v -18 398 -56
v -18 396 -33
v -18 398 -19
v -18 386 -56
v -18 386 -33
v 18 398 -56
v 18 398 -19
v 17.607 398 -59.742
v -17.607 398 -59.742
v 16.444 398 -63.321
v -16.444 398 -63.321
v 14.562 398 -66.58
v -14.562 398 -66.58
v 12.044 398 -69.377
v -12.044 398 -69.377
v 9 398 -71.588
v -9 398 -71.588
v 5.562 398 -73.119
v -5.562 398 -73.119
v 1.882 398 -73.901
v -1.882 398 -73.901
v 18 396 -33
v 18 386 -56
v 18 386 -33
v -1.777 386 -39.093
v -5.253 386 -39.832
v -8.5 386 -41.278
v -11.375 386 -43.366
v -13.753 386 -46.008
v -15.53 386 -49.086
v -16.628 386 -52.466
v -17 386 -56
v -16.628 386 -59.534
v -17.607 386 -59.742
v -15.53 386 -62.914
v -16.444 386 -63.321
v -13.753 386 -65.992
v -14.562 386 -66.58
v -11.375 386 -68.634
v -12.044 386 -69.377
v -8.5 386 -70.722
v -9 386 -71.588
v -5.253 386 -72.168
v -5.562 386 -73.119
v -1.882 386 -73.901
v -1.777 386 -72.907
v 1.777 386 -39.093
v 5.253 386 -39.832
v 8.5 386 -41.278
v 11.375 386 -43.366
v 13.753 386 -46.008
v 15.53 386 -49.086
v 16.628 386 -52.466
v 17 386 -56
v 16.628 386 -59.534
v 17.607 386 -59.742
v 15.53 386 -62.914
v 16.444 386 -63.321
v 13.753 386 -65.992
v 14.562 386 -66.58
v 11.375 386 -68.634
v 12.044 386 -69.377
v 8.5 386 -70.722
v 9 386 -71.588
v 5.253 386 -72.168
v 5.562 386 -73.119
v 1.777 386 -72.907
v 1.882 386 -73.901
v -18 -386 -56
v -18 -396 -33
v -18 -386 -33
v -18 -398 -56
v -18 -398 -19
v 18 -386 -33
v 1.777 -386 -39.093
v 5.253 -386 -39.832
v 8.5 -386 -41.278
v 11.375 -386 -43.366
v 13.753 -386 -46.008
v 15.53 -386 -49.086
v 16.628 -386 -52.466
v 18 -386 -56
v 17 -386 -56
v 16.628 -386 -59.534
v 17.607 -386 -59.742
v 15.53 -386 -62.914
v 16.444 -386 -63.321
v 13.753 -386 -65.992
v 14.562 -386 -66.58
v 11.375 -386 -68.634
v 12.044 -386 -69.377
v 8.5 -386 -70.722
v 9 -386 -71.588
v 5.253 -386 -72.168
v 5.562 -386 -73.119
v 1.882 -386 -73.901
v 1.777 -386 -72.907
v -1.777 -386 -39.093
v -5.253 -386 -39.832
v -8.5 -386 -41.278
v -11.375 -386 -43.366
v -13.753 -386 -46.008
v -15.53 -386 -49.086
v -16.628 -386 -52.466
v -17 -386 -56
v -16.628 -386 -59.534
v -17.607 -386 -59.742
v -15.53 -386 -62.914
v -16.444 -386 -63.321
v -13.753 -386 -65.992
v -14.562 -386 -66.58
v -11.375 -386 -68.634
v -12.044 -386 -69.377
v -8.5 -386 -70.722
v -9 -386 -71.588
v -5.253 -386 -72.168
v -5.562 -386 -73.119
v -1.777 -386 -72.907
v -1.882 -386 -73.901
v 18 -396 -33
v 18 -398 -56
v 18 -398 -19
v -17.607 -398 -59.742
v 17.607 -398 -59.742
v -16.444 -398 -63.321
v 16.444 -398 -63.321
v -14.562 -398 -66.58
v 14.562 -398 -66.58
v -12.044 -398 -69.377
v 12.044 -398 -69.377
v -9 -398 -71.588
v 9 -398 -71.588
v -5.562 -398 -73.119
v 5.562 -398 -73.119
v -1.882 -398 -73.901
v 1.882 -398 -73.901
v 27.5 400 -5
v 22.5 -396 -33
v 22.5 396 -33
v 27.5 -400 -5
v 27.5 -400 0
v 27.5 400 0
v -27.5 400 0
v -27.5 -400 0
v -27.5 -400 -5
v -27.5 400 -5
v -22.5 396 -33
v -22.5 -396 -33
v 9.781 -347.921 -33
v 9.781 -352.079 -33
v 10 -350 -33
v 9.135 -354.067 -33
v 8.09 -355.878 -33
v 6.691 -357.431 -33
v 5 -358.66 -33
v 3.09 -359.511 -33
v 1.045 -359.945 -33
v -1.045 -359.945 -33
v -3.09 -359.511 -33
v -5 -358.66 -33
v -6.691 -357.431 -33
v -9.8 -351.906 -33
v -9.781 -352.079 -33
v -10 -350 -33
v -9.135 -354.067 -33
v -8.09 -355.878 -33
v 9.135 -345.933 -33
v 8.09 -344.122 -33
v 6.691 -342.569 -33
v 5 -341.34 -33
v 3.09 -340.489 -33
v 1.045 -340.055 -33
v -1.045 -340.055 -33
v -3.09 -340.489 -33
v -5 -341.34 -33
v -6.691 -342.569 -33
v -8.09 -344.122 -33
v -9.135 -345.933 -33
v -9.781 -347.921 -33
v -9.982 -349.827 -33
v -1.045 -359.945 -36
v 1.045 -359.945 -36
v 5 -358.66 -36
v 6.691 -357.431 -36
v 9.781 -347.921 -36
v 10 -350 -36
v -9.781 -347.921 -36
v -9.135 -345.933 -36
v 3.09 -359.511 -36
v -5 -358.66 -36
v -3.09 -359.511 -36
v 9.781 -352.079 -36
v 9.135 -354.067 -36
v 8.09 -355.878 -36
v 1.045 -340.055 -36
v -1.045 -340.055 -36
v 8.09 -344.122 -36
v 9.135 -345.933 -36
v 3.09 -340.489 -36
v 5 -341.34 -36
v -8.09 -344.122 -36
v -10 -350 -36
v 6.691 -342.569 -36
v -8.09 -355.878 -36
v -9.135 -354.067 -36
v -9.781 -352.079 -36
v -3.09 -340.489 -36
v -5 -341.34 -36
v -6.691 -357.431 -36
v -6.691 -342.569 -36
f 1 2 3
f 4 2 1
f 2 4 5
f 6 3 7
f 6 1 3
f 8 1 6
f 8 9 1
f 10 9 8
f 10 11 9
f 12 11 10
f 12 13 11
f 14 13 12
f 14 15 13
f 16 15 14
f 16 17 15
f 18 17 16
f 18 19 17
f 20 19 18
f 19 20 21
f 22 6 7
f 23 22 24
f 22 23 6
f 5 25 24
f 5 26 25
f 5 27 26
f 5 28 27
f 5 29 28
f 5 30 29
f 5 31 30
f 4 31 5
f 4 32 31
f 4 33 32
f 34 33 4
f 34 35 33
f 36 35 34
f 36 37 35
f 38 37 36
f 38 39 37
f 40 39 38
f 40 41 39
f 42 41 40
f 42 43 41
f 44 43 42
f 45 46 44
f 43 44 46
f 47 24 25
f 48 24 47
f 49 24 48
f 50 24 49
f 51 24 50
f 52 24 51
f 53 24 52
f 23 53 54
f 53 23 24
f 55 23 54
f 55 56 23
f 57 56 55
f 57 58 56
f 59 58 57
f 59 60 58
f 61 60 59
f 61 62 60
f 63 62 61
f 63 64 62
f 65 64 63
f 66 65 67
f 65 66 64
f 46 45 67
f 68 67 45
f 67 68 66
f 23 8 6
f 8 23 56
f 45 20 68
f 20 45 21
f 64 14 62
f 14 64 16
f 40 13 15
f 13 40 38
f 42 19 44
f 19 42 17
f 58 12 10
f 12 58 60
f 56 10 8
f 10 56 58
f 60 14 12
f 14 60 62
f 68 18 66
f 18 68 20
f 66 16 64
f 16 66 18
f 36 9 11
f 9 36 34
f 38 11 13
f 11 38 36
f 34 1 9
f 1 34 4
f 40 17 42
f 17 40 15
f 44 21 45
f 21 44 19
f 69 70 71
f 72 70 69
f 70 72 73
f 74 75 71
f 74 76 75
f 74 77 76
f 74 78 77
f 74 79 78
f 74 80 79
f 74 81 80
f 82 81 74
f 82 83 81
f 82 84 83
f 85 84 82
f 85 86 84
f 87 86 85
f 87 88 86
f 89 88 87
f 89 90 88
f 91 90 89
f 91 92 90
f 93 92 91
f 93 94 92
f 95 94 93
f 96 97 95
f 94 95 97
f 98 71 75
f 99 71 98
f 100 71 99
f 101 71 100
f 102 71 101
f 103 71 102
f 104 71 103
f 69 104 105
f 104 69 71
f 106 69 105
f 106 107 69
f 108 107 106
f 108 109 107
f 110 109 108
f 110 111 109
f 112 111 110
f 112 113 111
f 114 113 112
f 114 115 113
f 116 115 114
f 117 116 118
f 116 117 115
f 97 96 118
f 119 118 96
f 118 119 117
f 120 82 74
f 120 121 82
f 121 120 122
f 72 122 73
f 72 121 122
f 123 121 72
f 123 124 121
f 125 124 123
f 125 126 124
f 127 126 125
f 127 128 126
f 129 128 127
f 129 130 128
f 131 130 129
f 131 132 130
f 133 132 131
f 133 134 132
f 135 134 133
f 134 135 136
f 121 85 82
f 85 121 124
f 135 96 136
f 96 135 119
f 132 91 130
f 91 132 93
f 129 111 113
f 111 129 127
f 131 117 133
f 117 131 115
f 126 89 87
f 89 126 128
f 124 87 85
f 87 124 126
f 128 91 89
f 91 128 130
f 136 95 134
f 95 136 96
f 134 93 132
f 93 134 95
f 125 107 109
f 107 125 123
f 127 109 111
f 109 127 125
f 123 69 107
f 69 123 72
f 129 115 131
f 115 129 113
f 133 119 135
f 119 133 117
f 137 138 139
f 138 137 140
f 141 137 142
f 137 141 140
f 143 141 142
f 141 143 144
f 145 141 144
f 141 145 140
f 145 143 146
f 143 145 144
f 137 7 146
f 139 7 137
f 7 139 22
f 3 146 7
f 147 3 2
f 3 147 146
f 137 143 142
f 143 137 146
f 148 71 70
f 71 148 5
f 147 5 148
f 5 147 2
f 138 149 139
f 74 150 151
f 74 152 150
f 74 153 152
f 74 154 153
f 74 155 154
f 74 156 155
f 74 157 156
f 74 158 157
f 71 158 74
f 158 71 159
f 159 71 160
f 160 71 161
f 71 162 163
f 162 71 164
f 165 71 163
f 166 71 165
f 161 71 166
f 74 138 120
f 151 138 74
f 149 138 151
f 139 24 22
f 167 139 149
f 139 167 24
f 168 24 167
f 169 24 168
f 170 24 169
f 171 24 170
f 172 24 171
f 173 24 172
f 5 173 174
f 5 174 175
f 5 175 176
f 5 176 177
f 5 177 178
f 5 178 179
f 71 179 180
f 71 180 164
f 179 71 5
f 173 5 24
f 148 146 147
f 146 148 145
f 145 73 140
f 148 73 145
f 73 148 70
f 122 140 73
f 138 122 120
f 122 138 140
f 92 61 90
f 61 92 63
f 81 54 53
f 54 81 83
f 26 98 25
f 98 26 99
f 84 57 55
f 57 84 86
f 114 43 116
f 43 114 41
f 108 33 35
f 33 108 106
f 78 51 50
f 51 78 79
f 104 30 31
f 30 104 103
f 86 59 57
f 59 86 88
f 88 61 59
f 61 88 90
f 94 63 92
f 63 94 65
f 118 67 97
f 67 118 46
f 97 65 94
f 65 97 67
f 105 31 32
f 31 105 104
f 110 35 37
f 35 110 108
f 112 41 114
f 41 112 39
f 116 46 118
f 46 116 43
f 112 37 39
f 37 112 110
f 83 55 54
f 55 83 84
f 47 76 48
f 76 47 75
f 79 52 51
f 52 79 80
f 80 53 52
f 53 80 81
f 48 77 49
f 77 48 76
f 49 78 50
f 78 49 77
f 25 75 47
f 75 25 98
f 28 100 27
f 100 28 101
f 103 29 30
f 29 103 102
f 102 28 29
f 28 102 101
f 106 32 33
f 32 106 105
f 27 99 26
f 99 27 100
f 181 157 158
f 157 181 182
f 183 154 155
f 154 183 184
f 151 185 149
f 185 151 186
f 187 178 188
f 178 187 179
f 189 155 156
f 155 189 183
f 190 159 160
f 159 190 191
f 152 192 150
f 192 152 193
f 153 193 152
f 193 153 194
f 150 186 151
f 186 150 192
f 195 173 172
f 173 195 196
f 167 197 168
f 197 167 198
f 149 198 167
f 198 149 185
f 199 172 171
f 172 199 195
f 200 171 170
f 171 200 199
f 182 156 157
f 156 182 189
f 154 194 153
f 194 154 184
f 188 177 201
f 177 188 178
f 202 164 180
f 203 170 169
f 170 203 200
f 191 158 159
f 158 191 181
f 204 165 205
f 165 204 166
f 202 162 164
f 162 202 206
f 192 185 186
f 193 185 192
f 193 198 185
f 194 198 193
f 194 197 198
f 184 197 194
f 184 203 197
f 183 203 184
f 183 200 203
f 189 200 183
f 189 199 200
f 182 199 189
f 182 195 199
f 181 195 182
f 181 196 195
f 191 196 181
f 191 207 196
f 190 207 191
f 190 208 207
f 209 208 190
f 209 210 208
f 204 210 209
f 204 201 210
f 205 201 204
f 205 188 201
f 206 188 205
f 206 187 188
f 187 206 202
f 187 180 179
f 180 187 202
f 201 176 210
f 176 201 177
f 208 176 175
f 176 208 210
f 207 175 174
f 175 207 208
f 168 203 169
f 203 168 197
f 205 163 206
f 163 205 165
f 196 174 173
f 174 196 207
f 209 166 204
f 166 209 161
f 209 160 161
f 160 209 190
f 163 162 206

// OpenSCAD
length=800;

module tl_armature(l=length) {
    rotate([-90,0,0]) translate([0,0,-l/2]) union() {
        translate([0,56,2.5]) cylinder(l-5,17,17);
        translate([0,0,50]) rotate([-90,0,0]) cylinder(36,10,10);
        translate([-22.5,0,0]) union() {
            translate([0,0,2]) hull() {
                translate([0,0,2]) cube([45,33,l-8]);
                translate([-5,0,-2]) cube([55,5,l]);
            }
            translate([4.5,10,l-14]) union() {
                cube([36,46,12]);
                translate([18,46,0]) cylinder(12,18,18);
            }
            translate([4.5,10,2]) union() {
                cube([36,46,12]);
                translate([18,46,0]) cylinder(12,18,18);
            }
        }
    }
}

tl_armature();
